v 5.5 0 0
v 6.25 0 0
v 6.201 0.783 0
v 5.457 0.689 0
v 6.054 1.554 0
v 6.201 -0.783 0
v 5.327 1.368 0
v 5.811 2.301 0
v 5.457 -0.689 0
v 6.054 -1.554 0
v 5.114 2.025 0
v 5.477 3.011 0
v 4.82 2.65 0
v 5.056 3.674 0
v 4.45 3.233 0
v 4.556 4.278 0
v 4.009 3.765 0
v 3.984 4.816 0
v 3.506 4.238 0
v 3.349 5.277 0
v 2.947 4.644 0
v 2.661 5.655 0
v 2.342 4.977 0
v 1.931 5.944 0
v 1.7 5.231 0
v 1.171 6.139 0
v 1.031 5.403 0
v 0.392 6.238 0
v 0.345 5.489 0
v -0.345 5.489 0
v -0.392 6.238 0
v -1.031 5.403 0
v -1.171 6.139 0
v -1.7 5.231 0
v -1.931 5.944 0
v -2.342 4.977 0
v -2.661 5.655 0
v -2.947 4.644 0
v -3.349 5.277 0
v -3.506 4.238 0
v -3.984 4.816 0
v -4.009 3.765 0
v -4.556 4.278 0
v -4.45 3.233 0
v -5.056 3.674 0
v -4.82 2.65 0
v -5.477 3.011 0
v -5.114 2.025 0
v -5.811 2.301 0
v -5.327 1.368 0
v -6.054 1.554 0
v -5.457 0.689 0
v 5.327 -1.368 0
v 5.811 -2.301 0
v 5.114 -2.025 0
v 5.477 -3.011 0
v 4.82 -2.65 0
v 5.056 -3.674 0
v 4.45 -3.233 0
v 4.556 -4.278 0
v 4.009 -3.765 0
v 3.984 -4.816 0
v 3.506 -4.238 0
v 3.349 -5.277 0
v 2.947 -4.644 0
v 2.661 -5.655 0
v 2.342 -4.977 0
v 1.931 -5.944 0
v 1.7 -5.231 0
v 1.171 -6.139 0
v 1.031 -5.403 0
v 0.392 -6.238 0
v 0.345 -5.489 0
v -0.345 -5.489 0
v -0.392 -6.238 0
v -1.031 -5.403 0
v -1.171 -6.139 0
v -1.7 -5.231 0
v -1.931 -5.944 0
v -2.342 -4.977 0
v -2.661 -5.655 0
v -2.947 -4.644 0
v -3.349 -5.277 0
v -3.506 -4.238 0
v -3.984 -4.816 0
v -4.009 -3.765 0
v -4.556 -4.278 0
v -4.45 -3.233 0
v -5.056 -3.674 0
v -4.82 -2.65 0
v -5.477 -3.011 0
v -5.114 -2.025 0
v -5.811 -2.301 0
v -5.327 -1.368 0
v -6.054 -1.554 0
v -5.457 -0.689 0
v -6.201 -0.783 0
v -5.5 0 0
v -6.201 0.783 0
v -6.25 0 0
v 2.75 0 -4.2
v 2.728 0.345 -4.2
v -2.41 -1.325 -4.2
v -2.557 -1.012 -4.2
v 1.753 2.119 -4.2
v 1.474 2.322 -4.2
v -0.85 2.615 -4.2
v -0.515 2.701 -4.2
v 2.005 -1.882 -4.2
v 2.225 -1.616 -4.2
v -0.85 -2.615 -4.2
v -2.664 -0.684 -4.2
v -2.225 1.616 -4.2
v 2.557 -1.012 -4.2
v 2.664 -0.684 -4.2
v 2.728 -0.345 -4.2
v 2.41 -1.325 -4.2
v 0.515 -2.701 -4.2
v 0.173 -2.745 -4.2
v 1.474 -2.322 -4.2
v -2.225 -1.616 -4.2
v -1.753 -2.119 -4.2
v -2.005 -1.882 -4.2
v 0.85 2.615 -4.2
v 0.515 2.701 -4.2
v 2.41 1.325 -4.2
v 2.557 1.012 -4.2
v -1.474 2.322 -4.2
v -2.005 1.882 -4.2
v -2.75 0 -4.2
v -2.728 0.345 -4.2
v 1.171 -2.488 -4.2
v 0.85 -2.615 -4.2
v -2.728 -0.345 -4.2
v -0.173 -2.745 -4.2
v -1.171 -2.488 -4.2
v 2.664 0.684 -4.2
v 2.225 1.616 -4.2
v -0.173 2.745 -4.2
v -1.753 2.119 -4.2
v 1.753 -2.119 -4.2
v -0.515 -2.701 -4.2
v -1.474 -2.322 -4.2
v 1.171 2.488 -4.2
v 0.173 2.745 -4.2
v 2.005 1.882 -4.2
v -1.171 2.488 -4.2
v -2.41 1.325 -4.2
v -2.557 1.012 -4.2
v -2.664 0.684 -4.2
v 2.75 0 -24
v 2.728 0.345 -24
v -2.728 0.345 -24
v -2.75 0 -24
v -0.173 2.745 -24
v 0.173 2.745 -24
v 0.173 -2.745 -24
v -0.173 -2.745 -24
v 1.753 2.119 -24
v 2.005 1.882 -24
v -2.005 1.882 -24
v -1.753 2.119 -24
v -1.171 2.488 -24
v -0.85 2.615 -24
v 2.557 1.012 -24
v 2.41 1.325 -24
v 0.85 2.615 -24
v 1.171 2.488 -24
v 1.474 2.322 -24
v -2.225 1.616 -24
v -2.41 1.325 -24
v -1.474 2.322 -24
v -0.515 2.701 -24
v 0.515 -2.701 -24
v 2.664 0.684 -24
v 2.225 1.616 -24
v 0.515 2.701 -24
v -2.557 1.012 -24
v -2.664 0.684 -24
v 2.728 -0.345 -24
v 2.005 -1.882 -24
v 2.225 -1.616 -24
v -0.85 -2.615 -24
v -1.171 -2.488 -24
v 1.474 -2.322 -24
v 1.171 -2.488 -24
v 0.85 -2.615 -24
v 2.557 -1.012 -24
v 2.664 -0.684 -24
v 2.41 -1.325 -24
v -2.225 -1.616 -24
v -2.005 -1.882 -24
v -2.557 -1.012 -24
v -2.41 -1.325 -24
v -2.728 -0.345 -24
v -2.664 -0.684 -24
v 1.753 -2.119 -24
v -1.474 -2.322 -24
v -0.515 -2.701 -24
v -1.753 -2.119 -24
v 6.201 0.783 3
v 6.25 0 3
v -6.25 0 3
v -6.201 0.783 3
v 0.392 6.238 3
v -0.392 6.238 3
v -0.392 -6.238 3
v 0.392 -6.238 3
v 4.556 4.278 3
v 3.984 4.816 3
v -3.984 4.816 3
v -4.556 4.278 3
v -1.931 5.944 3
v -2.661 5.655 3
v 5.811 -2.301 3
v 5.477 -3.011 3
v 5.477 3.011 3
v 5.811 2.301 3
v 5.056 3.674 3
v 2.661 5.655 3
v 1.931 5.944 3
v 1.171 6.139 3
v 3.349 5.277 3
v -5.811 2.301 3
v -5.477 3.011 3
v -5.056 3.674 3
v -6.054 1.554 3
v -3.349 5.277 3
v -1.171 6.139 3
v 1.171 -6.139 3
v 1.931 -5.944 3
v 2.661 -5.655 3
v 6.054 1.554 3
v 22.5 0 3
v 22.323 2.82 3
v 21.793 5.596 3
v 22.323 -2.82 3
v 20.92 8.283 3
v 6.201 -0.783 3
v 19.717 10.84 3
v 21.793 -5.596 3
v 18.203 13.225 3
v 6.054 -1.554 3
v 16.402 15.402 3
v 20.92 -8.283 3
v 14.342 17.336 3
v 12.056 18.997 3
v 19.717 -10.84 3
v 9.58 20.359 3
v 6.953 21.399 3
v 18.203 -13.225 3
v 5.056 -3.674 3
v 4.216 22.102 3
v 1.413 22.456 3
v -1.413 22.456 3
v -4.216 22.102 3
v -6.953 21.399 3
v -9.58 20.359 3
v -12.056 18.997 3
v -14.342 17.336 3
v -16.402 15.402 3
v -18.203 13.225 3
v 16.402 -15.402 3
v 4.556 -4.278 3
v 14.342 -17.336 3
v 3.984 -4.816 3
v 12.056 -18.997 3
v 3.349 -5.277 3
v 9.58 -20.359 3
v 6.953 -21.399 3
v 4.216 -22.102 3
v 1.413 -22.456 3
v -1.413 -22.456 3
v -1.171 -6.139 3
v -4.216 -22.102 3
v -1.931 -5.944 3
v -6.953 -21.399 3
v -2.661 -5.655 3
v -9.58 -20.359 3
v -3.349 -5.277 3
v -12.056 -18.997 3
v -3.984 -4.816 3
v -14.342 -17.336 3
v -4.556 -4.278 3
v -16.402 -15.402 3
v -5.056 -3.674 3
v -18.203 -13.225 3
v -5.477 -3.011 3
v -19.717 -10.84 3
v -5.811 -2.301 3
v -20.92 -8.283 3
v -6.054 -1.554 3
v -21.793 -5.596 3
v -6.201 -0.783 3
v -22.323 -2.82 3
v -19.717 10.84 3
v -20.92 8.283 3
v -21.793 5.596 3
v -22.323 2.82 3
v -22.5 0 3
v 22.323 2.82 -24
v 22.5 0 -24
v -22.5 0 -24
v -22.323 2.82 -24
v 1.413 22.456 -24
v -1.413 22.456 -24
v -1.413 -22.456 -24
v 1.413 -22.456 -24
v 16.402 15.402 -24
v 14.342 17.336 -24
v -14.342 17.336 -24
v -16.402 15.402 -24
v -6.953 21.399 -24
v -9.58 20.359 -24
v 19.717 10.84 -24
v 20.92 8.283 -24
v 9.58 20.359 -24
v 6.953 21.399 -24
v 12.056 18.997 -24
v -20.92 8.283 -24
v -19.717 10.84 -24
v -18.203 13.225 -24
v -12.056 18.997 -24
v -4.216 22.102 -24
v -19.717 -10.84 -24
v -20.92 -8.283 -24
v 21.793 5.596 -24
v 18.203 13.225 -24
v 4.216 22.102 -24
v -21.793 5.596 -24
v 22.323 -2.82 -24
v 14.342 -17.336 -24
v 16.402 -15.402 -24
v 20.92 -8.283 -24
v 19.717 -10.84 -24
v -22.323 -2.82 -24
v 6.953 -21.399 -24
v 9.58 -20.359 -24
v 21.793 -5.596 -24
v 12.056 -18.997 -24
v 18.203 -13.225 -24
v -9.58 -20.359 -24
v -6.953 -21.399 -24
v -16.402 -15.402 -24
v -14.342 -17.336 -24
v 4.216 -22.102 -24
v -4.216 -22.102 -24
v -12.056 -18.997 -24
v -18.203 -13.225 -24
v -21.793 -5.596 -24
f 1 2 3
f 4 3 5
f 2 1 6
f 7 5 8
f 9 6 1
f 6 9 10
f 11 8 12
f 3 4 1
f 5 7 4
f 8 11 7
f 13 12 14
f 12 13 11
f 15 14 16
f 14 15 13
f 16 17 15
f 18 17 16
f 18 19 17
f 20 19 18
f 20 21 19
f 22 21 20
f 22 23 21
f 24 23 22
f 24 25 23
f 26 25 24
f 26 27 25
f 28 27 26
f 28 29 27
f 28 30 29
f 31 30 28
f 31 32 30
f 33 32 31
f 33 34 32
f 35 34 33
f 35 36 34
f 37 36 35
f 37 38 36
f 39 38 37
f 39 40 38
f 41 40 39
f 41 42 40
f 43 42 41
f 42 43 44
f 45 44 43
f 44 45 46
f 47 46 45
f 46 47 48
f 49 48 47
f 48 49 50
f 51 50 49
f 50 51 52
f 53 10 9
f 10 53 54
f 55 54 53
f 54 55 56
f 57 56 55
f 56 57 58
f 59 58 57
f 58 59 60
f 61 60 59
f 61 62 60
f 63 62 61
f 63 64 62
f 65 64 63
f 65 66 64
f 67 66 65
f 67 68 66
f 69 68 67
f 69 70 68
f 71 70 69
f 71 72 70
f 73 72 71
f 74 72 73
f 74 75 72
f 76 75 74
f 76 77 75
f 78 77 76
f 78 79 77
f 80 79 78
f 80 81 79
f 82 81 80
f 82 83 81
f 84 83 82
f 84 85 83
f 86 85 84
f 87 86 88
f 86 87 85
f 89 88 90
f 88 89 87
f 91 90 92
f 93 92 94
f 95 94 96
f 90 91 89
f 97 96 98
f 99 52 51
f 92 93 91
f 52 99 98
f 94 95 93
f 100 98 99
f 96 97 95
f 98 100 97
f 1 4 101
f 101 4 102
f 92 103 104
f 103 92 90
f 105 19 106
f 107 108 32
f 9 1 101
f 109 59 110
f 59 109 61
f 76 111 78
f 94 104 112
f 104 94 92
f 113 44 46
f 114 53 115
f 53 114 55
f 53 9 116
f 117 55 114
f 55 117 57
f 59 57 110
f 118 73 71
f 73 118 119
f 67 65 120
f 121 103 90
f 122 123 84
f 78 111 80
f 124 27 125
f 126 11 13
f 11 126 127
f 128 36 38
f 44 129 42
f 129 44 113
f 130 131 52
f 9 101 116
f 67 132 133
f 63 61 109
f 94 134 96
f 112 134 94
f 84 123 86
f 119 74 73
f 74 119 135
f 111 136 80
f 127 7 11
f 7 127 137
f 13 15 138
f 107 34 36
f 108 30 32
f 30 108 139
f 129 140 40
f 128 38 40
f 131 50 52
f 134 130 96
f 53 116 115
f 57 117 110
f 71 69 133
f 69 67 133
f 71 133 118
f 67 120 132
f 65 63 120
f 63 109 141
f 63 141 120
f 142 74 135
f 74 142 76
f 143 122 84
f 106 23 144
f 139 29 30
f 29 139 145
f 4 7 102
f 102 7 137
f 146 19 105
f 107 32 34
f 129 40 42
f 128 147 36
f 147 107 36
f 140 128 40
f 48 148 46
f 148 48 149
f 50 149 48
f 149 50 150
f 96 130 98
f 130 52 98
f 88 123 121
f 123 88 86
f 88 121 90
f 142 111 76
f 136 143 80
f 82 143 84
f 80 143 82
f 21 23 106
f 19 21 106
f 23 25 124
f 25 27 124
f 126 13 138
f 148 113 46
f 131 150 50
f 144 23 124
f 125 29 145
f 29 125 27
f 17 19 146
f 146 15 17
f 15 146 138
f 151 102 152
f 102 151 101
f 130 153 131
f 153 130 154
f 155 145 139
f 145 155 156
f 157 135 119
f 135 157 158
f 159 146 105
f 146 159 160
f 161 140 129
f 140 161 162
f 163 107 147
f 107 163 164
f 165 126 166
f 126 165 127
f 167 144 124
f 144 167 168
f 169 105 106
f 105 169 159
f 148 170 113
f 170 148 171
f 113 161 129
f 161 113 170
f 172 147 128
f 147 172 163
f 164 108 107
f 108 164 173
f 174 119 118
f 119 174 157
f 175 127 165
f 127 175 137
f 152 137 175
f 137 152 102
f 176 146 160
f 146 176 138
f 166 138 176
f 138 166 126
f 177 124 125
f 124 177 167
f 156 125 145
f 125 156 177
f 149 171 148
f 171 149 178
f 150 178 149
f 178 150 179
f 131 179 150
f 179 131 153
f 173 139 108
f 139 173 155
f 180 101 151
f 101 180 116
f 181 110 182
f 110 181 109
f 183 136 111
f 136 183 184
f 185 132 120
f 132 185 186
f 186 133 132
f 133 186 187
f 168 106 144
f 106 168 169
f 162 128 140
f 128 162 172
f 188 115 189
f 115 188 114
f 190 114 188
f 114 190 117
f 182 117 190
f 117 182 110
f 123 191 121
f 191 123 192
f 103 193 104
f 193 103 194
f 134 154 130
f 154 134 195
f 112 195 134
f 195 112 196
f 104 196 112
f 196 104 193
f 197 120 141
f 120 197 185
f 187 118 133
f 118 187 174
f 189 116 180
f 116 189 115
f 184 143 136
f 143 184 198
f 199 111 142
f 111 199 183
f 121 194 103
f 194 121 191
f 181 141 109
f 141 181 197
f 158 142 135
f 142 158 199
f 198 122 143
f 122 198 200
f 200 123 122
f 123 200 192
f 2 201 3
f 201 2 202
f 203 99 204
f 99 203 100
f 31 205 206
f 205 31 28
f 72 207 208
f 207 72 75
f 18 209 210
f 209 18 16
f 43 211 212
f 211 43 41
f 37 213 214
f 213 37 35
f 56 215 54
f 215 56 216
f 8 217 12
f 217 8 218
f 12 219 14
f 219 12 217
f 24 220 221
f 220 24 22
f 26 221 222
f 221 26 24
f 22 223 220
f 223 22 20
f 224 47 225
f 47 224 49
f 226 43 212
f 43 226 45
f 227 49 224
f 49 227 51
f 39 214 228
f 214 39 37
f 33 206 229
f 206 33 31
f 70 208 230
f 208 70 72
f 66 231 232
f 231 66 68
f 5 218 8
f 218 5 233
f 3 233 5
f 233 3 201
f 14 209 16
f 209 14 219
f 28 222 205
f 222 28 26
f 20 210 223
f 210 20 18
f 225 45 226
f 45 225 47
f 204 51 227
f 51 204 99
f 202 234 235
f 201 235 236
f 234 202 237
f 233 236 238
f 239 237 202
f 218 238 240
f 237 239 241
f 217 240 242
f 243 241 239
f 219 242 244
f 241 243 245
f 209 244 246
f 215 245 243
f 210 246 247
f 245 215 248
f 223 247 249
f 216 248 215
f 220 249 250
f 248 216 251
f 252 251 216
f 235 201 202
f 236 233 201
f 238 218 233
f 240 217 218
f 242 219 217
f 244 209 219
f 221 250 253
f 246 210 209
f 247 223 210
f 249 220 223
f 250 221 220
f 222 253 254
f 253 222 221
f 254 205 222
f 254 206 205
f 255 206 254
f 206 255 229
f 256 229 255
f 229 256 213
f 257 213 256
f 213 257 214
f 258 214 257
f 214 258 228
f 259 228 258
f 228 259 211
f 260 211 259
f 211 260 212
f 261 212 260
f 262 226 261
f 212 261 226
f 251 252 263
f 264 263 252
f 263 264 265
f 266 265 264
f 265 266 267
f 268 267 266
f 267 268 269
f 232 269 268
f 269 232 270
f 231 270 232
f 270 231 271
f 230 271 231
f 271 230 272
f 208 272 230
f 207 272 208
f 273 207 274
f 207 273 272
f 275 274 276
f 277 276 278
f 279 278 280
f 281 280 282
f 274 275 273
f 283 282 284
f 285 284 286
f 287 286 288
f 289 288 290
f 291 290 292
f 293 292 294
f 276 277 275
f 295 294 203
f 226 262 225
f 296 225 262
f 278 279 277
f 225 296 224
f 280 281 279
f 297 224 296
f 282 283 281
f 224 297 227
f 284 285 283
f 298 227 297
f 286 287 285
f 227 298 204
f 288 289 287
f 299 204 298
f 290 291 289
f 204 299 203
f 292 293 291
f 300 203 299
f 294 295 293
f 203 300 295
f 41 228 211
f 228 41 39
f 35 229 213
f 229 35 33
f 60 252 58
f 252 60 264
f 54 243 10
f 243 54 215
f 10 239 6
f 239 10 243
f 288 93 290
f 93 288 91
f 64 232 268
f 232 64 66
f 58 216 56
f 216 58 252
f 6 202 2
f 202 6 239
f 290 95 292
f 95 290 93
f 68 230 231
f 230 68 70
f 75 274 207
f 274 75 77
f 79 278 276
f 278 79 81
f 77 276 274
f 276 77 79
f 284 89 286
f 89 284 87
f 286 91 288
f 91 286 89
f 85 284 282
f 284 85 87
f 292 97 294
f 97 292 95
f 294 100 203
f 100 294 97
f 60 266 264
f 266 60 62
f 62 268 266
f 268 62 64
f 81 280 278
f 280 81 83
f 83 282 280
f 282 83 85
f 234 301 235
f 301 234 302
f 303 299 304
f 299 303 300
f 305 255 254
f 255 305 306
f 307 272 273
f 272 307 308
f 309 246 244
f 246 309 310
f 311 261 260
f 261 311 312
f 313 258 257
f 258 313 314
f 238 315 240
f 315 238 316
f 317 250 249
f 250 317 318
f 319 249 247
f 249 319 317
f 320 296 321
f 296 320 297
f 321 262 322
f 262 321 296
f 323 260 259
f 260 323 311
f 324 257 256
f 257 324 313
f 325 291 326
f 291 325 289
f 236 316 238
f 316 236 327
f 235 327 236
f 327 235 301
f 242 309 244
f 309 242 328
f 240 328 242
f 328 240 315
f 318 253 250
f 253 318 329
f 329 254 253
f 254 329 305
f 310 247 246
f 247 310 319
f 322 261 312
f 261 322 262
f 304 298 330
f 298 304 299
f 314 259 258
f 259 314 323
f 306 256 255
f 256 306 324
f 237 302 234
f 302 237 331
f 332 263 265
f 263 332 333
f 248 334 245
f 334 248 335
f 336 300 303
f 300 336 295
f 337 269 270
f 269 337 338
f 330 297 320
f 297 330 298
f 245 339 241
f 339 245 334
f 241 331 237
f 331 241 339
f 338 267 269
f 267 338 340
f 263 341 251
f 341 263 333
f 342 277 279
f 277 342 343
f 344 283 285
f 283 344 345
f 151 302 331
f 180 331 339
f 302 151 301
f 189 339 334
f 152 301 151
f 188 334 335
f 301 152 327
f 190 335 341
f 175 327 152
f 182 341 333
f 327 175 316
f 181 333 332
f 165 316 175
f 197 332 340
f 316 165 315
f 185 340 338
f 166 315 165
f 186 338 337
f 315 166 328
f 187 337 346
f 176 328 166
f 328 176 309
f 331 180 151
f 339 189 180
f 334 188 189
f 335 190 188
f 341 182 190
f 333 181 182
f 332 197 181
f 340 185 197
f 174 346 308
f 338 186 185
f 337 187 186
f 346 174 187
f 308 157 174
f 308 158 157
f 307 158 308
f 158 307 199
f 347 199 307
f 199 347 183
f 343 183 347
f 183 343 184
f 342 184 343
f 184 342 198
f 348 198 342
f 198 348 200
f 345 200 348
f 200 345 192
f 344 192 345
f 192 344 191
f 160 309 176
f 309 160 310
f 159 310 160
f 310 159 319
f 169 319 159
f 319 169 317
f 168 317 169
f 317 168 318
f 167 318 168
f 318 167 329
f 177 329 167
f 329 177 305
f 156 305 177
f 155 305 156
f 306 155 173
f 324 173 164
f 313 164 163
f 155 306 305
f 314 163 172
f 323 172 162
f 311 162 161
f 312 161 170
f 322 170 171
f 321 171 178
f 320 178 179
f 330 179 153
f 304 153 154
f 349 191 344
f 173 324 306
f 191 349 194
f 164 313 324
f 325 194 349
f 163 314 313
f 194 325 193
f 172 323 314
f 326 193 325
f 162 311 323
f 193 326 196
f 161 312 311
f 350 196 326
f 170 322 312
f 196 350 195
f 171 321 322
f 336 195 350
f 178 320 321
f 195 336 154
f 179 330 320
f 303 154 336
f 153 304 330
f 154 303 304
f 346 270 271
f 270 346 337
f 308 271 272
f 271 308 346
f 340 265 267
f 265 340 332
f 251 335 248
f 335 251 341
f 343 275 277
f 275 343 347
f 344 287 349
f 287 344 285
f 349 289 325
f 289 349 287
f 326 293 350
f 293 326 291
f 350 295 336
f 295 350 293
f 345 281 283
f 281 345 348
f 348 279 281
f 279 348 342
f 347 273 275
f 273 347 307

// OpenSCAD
$fn = 50;

difference() {
	union() {
		translate(v = [0, 0, -24.0]) {
			cylinder(h = 27, r = 22.5);
		}
	}
	union() {
		translate(v = [0, 0, 0]) {
			rotate(a = [0, 0, 0]) {
				difference() {
					union() {
						translate(v = [0, 0, -27.0]) {
							cylinder(h = 27, r = 2.25);
						}
						translate(v = [0, 0, -4.2]) {
							cylinder(h = 4.2, r1 = 2.75, r2 = 5.5);
						}
						translate(v = [0, 0, -27.0]) {
							cylinder(h = 27, r = 2.75);
						}
						translate(v = [0, 0, -27.0]) {
							cylinder(h = 27, r = 2.25);
						}
					}
					union();
				}
			}
		}
		#cylinder(h = 3, r = 6.25);
	}
}
